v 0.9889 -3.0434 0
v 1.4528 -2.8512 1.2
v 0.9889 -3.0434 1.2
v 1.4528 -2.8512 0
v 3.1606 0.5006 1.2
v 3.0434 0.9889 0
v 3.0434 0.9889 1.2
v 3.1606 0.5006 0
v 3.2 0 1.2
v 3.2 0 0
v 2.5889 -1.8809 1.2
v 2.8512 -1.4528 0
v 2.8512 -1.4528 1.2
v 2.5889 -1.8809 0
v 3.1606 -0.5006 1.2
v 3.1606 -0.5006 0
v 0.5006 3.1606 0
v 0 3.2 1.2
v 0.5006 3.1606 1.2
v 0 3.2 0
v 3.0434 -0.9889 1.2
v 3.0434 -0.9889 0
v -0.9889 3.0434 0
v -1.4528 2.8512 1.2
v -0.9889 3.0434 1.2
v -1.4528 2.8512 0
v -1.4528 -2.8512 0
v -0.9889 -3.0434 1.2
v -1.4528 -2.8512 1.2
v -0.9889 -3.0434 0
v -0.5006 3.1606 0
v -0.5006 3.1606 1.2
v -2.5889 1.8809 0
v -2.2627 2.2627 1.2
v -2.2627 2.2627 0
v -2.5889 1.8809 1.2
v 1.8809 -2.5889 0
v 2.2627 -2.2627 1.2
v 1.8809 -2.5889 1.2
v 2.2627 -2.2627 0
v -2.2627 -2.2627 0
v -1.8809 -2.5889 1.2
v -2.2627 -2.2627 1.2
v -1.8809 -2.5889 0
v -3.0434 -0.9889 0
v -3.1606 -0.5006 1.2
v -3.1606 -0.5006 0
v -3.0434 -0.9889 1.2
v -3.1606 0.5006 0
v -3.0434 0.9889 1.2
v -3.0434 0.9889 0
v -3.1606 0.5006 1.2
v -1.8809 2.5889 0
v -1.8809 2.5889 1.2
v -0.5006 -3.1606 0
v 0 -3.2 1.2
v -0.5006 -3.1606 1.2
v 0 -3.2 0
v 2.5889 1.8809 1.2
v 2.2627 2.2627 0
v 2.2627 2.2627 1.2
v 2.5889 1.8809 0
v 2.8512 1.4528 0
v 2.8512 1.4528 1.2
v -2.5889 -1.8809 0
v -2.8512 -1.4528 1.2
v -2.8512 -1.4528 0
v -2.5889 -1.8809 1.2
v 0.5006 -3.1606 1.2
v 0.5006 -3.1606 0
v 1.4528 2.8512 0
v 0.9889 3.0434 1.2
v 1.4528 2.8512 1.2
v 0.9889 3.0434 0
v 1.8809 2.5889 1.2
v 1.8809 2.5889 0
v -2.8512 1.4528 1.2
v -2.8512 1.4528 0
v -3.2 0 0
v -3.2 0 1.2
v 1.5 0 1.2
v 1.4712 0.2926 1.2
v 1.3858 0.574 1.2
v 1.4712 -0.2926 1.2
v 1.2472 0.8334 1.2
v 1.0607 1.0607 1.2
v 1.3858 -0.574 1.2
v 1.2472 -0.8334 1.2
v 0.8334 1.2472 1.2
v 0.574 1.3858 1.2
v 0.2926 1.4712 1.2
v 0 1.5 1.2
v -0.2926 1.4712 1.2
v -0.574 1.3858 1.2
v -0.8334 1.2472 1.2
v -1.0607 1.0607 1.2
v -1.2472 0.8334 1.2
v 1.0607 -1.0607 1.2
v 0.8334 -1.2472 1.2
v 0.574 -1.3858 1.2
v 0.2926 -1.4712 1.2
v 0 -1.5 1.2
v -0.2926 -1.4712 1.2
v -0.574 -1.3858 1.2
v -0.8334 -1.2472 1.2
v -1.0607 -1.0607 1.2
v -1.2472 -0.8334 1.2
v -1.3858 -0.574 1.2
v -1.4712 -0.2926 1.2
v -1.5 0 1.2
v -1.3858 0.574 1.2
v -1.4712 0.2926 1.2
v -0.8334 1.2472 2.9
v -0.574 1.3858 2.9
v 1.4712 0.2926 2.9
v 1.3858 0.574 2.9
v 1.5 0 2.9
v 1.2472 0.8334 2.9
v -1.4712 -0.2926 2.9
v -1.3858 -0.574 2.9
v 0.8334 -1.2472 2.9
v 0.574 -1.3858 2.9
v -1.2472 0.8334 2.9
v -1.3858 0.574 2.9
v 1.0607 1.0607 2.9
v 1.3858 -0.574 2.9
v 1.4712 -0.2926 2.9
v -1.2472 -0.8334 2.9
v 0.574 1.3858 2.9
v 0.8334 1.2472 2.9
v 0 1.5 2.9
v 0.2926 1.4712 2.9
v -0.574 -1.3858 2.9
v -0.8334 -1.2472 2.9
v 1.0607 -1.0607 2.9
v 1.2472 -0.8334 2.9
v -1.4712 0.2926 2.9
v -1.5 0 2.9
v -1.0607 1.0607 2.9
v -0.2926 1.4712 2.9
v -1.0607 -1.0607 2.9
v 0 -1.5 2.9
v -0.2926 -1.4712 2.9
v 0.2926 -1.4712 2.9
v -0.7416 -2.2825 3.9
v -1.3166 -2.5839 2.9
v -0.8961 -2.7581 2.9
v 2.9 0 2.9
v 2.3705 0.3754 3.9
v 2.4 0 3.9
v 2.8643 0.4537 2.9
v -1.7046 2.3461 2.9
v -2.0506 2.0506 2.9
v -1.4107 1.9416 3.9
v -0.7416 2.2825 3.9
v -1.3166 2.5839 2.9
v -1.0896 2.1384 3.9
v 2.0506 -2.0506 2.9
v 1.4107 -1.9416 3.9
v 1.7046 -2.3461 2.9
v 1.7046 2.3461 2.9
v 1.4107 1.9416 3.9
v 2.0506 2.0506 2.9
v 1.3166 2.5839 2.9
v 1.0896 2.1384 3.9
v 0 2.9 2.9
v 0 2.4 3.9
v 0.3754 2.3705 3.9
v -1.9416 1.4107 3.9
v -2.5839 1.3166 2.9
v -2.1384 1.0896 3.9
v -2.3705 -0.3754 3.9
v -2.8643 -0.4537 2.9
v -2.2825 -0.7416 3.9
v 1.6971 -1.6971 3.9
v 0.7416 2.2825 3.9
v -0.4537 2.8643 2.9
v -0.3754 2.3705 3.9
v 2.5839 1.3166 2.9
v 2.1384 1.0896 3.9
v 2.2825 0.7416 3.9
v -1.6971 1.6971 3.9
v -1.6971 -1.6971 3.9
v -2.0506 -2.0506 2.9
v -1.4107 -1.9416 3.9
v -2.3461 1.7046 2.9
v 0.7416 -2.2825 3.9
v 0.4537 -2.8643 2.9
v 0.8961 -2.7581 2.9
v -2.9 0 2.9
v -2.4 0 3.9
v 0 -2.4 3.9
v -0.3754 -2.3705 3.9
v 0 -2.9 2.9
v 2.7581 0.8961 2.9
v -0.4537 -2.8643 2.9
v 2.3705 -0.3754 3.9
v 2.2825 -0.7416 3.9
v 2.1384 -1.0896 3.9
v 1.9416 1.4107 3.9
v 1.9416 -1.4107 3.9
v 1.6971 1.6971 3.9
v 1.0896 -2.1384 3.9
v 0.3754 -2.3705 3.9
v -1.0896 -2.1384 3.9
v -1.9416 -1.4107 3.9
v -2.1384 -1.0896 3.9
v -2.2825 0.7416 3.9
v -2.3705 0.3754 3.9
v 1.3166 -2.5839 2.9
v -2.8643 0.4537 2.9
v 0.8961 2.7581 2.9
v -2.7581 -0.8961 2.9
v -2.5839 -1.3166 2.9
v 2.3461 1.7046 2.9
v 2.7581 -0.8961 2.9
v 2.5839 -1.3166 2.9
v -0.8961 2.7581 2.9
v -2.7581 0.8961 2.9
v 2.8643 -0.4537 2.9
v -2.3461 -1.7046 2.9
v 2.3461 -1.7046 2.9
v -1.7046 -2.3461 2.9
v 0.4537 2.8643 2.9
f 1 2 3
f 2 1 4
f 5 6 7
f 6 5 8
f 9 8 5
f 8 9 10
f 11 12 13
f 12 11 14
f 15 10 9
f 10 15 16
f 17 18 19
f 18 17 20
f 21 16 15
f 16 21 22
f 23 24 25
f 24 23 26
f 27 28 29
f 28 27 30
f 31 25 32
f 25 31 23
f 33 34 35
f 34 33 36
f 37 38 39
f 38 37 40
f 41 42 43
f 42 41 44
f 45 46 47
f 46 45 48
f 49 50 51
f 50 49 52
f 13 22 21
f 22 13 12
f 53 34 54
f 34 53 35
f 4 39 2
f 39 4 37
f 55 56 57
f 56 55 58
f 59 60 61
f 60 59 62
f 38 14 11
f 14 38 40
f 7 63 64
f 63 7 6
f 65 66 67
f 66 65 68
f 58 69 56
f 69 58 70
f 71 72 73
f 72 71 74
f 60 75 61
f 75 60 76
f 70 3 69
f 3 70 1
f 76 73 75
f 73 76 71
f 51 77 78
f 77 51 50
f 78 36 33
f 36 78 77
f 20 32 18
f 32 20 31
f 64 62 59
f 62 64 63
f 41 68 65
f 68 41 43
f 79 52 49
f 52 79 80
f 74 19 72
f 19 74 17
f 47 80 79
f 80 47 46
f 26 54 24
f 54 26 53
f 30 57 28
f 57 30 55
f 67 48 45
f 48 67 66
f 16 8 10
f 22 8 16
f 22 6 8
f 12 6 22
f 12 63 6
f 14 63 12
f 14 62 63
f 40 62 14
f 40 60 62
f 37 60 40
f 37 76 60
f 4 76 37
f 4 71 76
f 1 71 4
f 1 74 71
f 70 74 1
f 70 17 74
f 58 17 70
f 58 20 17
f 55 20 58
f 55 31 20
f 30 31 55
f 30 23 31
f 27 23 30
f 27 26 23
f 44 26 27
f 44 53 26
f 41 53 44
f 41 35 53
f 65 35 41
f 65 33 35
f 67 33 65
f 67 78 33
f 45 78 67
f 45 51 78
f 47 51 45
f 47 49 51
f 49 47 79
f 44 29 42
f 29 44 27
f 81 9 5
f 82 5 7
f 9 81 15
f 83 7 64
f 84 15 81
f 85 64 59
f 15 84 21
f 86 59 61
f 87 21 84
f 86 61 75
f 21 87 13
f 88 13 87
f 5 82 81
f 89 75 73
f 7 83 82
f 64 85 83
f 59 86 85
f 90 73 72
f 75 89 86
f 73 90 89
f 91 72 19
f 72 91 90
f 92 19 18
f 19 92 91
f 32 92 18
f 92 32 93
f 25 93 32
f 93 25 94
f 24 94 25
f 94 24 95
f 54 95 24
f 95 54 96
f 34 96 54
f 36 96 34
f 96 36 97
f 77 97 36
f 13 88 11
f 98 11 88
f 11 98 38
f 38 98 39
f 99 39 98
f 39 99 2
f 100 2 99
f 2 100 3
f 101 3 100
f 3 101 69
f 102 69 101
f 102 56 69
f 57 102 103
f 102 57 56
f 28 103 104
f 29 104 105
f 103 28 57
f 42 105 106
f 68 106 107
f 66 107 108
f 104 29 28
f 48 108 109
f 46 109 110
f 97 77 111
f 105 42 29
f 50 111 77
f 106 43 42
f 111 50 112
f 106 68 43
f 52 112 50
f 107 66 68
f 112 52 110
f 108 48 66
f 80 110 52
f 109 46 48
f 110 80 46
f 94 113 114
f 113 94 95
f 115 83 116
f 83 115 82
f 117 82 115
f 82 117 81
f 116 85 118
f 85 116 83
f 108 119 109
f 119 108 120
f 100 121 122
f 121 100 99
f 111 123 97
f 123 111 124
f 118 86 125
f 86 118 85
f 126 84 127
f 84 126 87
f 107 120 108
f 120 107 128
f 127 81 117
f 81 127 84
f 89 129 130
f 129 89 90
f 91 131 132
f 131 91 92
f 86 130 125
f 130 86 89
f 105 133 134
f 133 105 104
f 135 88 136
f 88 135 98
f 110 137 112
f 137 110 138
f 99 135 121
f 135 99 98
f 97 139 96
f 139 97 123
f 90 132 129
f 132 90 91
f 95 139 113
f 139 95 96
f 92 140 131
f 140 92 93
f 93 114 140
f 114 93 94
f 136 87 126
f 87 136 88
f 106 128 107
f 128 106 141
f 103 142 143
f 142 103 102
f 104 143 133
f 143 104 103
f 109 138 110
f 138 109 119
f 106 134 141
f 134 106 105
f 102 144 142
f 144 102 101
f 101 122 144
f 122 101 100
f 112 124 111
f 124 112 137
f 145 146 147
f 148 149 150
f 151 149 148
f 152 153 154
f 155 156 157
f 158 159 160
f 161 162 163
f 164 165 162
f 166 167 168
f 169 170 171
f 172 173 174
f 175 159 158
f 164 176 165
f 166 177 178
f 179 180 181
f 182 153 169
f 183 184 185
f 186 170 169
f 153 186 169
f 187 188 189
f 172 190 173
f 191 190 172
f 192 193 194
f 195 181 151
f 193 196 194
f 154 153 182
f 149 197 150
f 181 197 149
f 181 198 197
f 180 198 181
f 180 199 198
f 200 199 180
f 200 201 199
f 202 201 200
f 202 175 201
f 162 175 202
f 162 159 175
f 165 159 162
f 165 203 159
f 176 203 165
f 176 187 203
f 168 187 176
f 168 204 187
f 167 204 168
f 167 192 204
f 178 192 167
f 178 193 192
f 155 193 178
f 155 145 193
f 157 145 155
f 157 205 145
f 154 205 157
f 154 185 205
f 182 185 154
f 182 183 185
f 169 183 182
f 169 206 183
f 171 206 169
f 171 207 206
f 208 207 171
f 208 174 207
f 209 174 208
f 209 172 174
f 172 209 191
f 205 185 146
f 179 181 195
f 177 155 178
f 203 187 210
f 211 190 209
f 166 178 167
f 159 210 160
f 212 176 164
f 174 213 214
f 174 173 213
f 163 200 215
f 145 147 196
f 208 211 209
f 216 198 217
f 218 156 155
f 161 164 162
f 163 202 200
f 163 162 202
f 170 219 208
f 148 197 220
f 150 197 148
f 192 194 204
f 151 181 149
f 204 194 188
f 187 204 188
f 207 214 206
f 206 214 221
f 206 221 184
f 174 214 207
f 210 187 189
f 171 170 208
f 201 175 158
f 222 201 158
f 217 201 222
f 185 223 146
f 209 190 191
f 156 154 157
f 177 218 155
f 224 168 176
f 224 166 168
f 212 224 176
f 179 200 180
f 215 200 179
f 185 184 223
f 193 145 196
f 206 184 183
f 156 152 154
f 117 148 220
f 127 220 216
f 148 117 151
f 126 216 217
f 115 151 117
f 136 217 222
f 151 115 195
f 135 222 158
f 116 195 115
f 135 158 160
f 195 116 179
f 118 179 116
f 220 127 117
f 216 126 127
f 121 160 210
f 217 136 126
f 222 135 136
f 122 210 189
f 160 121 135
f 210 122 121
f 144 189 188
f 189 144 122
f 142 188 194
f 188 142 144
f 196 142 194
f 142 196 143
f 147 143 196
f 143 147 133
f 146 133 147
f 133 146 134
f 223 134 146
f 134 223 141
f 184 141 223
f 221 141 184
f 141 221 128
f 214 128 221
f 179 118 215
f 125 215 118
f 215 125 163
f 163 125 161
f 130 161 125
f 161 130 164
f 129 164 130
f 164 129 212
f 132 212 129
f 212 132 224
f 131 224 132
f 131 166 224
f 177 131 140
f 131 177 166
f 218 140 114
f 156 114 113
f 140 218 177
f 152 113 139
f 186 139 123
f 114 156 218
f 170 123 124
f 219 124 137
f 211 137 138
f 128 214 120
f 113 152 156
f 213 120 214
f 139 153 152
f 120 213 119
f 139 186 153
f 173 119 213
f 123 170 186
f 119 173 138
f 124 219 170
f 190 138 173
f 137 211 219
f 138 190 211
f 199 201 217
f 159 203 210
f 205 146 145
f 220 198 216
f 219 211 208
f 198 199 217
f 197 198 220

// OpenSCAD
// file: _h30-enclosure-model.scad
/*
  WHEELTEC H30 metal enclosure family geometry.
  Overall envelope without damper heads: 46.0 x 59.5 x 11.7 mm.
  Origin: center of mounting base, bottom face.
*/

include <_h30-pcb-model.scad>

enclosure_width = 46.0;
enclosure_length = 59.5;
enclosure_height = 11.7;
body_length = 43.3;
base_thickness = 2.0;
cover_height = 2.2;
corner_radius = 2.4;
mount_hole_diameter = 3.4;
mount_hole_x = 17.0;
mount_hole_y = 26.0;
wall_thickness = 1.8;

module h30_rounded_rect(size=[10, 10], radius=1) {
    offset(r=radius)
        square([size[0]-2*radius, size[1]-2*radius], center=true);
}

module h30_rounded_plate(size=[10, 10], height=1, radius=1) {
    linear_extrude(height=height)
        h30_rounded_rect(size, radius);
}

module h30_mounting_base() {
    difference() {
        h30_rounded_plate(
            [enclosure_width, enclosure_length],
            base_thickness,
            corner_radius
        );
        for (x=[-mount_hole_x, mount_hole_x], y=[-mount_hole_y, mount_hole_y])
            translate([x, y, -0.1])
                cylinder(d=mount_hole_diameter, h=base_thickness+0.2, $fn=40);
    }
}

module h30_main_housing() {
    lower_height = enclosure_height-cover_height-base_thickness;
    union() {
        h30_mounting_base();
        translate([0, 0, base_thickness])
            difference() {
                h30_rounded_plate(
                    [enclosure_width, body_length],
                    lower_height,
                    corner_radius
                );
                translate([0, 0, wall_thickness])
                    h30_rounded_plate(
                        [enclosure_width-2*wall_thickness,
                         body_length-2*wall_thickness],
                        lower_height,
                        max(0.8, corner_radius-wall_thickness)
                    );
                // USB-C opening centered on the front long wall.
                translate([0, -body_length/2-0.2, 2.5])
                    rotate([-90, 0, 0])
                        hull() {
                            translate([-3.8, 0, 0]) cylinder(d=3.2, h=wall_thickness+0.4, $fn=30);
                            translate([ 3.8, 0, 0]) cylinder(d=3.2, h=wall_thickness+0.4, $fn=30);
                        }
            }
    }
}

module h30_cover() {
    z0 = enclosure_height-cover_height;
    // The original enclosure has a smaller flat top and sloped shoulders.
    translate([0, 0, z0])
        hull() {
            h30_rounded_plate([enclosure_width, body_length], 0.35, corner_radius);
            translate([0, 0, cover_height-0.35])
                h30_rounded_plate([40.0, 36.0], 0.35, 1.8);
        }
}

module h30_cover_screw() {
    union() {
        cylinder(d=4.8, h=1.0, $fn=36);
        translate([0, 0, 0.8]) cylinder(d=2.8, h=5.4, $fn=30);
    }
}

module h30_four_cover_screws() {
    // Four screws enter from the underside and do not appear on the top cover.
    for (x=[-18.0, 18.0], y=[-16.0, 16.0])
        translate([x, y, 0.25]) h30_cover_screw();
}

module h30_plastic_damper_screw() {
    // Simplified nylon isolation screw: lower head, shank, upper retaining head.
    union() {
        cylinder(d=6.4, h=1.2, $fn=40);
        translate([0, 0, 0.8]) cylinder(d=3.0, h=3.0, $fn=32);
        translate([0, 0, 2.9]) cylinder(d1=5.8, d2=4.8, h=1.0, $fn=40);
    }
}

module h30_four_plastic_dampers() {
    for (x=[-mount_hole_x, mount_hole_x], y=[-mount_hole_y, mount_hole_y])
        translate([x, y, -0.65]) h30_plastic_damper_screw();
}

module h30_top_markings() {
    translate([0, 0, enclosure_height+0.01])
        linear_extrude(height=0.12) {
            translate([0, 10.0])
                text("WHEELTEC", size=3.0, halign="center", valign="center",
                     font="Liberation Sans:style=Bold");
            translate([0, -9.0])
                text("H30", size=4.0, halign="center", valign="center",
                     font="Liberation Sans:style=Regular");
            circle(d=1.2, $fn=24);
            for (angle=[0, 120, 240])
                rotate(angle)
                    polygon(points=[[0, 0], [7.0, -0.45], [7.0, 0.45]]);
        }
}

module h30_internal_pcb() {
    translate([0, 0, 2.38]) wheeltec_h30_pcb();
}
// main file
/* WHEELTEC H30 plastic vibration-isolating mounting screw. */
include <_h30-enclosure-model.scad>
color("#202629") h30_plastic_damper_screw();
